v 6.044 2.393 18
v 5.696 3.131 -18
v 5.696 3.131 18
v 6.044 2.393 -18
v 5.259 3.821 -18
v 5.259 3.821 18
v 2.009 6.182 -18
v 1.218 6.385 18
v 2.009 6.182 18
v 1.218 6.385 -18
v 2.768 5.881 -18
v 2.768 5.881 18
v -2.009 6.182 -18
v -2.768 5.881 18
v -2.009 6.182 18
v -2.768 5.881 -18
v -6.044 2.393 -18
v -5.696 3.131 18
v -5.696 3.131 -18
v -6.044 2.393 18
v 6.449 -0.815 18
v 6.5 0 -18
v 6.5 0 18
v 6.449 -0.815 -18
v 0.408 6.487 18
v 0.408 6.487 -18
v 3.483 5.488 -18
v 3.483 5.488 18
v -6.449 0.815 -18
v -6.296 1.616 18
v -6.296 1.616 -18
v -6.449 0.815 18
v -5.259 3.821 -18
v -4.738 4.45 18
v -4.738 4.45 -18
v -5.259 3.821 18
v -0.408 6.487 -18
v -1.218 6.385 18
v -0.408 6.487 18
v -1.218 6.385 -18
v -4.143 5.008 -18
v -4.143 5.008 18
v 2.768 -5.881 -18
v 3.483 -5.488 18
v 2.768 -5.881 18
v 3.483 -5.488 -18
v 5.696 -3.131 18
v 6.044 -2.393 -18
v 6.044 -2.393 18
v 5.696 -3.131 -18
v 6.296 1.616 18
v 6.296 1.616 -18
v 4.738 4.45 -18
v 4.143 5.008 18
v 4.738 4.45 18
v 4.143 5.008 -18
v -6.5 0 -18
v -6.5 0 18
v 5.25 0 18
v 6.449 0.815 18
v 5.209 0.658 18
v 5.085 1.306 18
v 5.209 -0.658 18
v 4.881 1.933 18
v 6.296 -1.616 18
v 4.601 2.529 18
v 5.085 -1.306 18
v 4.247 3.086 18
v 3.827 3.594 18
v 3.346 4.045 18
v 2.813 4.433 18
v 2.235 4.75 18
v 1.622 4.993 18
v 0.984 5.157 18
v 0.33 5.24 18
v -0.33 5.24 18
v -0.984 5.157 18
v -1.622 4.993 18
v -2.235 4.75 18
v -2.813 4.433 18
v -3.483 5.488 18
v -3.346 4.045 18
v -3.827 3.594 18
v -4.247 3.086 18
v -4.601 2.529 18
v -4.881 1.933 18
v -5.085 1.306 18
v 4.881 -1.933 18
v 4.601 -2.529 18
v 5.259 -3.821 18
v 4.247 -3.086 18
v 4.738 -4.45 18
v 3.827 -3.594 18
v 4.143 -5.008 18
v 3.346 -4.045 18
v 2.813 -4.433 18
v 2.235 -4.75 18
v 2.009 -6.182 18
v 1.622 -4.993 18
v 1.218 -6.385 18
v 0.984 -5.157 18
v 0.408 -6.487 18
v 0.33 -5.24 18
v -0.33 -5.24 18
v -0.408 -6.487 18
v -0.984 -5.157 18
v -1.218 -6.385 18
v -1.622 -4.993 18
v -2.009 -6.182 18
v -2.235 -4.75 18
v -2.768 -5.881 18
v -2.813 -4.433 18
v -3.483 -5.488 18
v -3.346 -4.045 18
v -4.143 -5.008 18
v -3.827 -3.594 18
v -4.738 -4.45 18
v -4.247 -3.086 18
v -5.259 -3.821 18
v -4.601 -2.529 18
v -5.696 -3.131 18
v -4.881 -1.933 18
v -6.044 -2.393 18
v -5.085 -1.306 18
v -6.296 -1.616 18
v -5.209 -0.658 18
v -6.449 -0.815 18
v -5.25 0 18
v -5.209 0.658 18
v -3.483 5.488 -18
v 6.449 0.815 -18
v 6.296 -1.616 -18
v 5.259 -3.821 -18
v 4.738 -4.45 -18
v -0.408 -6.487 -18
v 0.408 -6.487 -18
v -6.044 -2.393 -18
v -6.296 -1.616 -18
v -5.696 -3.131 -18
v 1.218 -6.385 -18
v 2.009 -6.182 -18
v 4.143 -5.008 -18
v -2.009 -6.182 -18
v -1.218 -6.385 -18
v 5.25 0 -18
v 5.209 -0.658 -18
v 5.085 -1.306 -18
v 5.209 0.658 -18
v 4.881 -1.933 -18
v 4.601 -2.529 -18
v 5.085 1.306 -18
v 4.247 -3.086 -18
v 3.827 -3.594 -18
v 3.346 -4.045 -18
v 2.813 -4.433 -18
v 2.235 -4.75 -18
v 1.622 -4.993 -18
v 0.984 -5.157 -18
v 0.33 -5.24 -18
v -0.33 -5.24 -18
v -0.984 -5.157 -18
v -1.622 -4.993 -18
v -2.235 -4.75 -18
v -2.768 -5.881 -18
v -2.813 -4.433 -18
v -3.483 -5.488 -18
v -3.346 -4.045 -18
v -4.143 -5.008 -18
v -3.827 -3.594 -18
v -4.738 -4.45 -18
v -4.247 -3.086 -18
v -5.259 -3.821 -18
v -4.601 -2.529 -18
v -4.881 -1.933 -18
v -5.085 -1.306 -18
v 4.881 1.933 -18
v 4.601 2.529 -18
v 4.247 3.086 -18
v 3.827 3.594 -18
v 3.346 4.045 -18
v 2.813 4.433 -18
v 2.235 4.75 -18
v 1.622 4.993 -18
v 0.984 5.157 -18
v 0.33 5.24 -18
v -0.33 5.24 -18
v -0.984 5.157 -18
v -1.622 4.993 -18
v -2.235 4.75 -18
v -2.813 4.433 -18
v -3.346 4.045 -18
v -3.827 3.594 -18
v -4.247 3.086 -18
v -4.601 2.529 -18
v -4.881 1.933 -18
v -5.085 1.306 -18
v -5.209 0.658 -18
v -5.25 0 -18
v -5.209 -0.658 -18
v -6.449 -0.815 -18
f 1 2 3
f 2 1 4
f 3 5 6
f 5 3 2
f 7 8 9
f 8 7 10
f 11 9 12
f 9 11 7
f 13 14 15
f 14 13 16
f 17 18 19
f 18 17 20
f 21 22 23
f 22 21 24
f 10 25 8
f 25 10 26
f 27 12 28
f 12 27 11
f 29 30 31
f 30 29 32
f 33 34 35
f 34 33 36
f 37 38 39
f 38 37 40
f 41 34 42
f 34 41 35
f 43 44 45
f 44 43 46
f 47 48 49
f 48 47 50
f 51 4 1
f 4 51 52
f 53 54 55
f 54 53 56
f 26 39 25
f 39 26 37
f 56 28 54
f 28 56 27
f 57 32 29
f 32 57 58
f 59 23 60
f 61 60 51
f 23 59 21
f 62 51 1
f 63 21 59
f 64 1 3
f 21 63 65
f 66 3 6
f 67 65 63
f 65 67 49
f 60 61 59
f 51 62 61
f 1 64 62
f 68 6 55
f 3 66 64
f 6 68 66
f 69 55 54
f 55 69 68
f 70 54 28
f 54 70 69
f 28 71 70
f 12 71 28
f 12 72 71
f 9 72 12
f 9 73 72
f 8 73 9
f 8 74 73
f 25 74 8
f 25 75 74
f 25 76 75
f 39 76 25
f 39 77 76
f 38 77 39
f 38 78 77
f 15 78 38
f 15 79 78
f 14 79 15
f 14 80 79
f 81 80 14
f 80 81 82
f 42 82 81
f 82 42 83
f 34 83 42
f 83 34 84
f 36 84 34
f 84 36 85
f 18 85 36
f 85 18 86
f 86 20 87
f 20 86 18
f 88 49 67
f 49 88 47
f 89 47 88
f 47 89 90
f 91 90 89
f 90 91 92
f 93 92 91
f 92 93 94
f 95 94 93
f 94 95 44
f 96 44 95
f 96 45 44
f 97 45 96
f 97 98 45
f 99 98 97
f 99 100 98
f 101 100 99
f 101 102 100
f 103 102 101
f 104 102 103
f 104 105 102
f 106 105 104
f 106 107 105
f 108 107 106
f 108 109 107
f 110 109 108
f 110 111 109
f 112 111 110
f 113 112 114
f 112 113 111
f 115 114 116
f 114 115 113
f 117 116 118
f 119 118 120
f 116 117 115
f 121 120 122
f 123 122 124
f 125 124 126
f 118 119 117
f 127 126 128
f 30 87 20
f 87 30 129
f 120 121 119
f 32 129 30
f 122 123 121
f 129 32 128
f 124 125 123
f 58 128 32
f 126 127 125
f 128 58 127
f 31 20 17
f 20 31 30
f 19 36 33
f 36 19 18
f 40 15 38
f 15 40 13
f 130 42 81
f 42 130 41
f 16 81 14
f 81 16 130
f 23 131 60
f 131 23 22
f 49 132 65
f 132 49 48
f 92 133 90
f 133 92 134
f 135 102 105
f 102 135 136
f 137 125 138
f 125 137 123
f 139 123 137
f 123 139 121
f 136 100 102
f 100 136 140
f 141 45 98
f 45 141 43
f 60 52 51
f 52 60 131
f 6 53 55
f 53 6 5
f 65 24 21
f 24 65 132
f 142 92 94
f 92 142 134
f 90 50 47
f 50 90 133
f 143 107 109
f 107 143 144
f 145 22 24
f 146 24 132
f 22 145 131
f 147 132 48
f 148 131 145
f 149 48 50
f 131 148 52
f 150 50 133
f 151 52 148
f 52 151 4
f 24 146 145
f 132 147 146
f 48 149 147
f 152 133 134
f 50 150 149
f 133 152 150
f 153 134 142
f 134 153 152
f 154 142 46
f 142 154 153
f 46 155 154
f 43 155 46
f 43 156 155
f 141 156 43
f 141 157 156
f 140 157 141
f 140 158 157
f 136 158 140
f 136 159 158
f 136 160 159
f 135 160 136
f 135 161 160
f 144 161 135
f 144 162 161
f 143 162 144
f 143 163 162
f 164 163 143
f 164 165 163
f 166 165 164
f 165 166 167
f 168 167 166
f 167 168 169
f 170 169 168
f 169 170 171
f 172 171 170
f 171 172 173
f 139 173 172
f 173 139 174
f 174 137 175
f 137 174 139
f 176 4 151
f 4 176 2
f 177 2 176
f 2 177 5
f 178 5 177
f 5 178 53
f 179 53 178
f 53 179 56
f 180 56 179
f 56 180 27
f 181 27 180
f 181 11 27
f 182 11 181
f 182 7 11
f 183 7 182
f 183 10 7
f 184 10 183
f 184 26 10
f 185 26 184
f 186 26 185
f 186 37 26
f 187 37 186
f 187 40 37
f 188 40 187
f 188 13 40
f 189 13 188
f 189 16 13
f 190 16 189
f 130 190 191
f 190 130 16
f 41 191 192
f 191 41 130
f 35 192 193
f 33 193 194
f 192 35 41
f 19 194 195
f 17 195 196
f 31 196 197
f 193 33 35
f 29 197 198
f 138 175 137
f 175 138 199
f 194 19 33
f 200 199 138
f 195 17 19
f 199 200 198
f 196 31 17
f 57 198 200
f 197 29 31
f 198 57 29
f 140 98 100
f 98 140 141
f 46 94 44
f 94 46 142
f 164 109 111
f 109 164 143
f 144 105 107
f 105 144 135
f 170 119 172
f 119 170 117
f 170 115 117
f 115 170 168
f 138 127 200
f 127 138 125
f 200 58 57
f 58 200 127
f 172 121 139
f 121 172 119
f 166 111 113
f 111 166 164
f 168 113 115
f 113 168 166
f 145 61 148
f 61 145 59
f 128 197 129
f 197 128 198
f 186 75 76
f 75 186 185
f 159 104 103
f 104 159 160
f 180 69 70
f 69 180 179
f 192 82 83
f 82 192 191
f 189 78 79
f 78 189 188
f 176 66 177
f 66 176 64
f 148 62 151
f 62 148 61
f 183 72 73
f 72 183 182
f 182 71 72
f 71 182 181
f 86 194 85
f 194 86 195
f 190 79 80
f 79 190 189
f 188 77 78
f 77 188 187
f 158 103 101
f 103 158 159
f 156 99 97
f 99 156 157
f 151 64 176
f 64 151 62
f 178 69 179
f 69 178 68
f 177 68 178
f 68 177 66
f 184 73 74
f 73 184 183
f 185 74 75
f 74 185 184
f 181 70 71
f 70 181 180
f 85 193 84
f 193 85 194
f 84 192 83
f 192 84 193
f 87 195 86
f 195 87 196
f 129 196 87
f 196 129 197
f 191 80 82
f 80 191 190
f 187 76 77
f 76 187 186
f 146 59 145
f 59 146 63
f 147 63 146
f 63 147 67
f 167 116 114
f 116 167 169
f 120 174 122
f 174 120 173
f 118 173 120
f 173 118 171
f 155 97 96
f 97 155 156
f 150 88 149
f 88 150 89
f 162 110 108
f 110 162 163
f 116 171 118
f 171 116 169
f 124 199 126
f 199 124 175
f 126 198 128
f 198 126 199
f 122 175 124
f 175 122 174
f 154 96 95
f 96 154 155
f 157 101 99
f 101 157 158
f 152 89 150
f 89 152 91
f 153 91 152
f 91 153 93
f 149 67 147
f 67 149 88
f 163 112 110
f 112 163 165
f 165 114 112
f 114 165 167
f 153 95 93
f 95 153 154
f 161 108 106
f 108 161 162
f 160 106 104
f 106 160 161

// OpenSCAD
$fn = 50;


difference() {
	union() {
		translate(v = [0, 0, -18.0000000000]) {
			cylinder(h = 36, r = 6.5000000000);
		}
	}
	union() {
		translate(v = [0, 0, -100.0000000000]) {
			cylinder(h = 200, r = 5.2500000000);
		}
	}
}
